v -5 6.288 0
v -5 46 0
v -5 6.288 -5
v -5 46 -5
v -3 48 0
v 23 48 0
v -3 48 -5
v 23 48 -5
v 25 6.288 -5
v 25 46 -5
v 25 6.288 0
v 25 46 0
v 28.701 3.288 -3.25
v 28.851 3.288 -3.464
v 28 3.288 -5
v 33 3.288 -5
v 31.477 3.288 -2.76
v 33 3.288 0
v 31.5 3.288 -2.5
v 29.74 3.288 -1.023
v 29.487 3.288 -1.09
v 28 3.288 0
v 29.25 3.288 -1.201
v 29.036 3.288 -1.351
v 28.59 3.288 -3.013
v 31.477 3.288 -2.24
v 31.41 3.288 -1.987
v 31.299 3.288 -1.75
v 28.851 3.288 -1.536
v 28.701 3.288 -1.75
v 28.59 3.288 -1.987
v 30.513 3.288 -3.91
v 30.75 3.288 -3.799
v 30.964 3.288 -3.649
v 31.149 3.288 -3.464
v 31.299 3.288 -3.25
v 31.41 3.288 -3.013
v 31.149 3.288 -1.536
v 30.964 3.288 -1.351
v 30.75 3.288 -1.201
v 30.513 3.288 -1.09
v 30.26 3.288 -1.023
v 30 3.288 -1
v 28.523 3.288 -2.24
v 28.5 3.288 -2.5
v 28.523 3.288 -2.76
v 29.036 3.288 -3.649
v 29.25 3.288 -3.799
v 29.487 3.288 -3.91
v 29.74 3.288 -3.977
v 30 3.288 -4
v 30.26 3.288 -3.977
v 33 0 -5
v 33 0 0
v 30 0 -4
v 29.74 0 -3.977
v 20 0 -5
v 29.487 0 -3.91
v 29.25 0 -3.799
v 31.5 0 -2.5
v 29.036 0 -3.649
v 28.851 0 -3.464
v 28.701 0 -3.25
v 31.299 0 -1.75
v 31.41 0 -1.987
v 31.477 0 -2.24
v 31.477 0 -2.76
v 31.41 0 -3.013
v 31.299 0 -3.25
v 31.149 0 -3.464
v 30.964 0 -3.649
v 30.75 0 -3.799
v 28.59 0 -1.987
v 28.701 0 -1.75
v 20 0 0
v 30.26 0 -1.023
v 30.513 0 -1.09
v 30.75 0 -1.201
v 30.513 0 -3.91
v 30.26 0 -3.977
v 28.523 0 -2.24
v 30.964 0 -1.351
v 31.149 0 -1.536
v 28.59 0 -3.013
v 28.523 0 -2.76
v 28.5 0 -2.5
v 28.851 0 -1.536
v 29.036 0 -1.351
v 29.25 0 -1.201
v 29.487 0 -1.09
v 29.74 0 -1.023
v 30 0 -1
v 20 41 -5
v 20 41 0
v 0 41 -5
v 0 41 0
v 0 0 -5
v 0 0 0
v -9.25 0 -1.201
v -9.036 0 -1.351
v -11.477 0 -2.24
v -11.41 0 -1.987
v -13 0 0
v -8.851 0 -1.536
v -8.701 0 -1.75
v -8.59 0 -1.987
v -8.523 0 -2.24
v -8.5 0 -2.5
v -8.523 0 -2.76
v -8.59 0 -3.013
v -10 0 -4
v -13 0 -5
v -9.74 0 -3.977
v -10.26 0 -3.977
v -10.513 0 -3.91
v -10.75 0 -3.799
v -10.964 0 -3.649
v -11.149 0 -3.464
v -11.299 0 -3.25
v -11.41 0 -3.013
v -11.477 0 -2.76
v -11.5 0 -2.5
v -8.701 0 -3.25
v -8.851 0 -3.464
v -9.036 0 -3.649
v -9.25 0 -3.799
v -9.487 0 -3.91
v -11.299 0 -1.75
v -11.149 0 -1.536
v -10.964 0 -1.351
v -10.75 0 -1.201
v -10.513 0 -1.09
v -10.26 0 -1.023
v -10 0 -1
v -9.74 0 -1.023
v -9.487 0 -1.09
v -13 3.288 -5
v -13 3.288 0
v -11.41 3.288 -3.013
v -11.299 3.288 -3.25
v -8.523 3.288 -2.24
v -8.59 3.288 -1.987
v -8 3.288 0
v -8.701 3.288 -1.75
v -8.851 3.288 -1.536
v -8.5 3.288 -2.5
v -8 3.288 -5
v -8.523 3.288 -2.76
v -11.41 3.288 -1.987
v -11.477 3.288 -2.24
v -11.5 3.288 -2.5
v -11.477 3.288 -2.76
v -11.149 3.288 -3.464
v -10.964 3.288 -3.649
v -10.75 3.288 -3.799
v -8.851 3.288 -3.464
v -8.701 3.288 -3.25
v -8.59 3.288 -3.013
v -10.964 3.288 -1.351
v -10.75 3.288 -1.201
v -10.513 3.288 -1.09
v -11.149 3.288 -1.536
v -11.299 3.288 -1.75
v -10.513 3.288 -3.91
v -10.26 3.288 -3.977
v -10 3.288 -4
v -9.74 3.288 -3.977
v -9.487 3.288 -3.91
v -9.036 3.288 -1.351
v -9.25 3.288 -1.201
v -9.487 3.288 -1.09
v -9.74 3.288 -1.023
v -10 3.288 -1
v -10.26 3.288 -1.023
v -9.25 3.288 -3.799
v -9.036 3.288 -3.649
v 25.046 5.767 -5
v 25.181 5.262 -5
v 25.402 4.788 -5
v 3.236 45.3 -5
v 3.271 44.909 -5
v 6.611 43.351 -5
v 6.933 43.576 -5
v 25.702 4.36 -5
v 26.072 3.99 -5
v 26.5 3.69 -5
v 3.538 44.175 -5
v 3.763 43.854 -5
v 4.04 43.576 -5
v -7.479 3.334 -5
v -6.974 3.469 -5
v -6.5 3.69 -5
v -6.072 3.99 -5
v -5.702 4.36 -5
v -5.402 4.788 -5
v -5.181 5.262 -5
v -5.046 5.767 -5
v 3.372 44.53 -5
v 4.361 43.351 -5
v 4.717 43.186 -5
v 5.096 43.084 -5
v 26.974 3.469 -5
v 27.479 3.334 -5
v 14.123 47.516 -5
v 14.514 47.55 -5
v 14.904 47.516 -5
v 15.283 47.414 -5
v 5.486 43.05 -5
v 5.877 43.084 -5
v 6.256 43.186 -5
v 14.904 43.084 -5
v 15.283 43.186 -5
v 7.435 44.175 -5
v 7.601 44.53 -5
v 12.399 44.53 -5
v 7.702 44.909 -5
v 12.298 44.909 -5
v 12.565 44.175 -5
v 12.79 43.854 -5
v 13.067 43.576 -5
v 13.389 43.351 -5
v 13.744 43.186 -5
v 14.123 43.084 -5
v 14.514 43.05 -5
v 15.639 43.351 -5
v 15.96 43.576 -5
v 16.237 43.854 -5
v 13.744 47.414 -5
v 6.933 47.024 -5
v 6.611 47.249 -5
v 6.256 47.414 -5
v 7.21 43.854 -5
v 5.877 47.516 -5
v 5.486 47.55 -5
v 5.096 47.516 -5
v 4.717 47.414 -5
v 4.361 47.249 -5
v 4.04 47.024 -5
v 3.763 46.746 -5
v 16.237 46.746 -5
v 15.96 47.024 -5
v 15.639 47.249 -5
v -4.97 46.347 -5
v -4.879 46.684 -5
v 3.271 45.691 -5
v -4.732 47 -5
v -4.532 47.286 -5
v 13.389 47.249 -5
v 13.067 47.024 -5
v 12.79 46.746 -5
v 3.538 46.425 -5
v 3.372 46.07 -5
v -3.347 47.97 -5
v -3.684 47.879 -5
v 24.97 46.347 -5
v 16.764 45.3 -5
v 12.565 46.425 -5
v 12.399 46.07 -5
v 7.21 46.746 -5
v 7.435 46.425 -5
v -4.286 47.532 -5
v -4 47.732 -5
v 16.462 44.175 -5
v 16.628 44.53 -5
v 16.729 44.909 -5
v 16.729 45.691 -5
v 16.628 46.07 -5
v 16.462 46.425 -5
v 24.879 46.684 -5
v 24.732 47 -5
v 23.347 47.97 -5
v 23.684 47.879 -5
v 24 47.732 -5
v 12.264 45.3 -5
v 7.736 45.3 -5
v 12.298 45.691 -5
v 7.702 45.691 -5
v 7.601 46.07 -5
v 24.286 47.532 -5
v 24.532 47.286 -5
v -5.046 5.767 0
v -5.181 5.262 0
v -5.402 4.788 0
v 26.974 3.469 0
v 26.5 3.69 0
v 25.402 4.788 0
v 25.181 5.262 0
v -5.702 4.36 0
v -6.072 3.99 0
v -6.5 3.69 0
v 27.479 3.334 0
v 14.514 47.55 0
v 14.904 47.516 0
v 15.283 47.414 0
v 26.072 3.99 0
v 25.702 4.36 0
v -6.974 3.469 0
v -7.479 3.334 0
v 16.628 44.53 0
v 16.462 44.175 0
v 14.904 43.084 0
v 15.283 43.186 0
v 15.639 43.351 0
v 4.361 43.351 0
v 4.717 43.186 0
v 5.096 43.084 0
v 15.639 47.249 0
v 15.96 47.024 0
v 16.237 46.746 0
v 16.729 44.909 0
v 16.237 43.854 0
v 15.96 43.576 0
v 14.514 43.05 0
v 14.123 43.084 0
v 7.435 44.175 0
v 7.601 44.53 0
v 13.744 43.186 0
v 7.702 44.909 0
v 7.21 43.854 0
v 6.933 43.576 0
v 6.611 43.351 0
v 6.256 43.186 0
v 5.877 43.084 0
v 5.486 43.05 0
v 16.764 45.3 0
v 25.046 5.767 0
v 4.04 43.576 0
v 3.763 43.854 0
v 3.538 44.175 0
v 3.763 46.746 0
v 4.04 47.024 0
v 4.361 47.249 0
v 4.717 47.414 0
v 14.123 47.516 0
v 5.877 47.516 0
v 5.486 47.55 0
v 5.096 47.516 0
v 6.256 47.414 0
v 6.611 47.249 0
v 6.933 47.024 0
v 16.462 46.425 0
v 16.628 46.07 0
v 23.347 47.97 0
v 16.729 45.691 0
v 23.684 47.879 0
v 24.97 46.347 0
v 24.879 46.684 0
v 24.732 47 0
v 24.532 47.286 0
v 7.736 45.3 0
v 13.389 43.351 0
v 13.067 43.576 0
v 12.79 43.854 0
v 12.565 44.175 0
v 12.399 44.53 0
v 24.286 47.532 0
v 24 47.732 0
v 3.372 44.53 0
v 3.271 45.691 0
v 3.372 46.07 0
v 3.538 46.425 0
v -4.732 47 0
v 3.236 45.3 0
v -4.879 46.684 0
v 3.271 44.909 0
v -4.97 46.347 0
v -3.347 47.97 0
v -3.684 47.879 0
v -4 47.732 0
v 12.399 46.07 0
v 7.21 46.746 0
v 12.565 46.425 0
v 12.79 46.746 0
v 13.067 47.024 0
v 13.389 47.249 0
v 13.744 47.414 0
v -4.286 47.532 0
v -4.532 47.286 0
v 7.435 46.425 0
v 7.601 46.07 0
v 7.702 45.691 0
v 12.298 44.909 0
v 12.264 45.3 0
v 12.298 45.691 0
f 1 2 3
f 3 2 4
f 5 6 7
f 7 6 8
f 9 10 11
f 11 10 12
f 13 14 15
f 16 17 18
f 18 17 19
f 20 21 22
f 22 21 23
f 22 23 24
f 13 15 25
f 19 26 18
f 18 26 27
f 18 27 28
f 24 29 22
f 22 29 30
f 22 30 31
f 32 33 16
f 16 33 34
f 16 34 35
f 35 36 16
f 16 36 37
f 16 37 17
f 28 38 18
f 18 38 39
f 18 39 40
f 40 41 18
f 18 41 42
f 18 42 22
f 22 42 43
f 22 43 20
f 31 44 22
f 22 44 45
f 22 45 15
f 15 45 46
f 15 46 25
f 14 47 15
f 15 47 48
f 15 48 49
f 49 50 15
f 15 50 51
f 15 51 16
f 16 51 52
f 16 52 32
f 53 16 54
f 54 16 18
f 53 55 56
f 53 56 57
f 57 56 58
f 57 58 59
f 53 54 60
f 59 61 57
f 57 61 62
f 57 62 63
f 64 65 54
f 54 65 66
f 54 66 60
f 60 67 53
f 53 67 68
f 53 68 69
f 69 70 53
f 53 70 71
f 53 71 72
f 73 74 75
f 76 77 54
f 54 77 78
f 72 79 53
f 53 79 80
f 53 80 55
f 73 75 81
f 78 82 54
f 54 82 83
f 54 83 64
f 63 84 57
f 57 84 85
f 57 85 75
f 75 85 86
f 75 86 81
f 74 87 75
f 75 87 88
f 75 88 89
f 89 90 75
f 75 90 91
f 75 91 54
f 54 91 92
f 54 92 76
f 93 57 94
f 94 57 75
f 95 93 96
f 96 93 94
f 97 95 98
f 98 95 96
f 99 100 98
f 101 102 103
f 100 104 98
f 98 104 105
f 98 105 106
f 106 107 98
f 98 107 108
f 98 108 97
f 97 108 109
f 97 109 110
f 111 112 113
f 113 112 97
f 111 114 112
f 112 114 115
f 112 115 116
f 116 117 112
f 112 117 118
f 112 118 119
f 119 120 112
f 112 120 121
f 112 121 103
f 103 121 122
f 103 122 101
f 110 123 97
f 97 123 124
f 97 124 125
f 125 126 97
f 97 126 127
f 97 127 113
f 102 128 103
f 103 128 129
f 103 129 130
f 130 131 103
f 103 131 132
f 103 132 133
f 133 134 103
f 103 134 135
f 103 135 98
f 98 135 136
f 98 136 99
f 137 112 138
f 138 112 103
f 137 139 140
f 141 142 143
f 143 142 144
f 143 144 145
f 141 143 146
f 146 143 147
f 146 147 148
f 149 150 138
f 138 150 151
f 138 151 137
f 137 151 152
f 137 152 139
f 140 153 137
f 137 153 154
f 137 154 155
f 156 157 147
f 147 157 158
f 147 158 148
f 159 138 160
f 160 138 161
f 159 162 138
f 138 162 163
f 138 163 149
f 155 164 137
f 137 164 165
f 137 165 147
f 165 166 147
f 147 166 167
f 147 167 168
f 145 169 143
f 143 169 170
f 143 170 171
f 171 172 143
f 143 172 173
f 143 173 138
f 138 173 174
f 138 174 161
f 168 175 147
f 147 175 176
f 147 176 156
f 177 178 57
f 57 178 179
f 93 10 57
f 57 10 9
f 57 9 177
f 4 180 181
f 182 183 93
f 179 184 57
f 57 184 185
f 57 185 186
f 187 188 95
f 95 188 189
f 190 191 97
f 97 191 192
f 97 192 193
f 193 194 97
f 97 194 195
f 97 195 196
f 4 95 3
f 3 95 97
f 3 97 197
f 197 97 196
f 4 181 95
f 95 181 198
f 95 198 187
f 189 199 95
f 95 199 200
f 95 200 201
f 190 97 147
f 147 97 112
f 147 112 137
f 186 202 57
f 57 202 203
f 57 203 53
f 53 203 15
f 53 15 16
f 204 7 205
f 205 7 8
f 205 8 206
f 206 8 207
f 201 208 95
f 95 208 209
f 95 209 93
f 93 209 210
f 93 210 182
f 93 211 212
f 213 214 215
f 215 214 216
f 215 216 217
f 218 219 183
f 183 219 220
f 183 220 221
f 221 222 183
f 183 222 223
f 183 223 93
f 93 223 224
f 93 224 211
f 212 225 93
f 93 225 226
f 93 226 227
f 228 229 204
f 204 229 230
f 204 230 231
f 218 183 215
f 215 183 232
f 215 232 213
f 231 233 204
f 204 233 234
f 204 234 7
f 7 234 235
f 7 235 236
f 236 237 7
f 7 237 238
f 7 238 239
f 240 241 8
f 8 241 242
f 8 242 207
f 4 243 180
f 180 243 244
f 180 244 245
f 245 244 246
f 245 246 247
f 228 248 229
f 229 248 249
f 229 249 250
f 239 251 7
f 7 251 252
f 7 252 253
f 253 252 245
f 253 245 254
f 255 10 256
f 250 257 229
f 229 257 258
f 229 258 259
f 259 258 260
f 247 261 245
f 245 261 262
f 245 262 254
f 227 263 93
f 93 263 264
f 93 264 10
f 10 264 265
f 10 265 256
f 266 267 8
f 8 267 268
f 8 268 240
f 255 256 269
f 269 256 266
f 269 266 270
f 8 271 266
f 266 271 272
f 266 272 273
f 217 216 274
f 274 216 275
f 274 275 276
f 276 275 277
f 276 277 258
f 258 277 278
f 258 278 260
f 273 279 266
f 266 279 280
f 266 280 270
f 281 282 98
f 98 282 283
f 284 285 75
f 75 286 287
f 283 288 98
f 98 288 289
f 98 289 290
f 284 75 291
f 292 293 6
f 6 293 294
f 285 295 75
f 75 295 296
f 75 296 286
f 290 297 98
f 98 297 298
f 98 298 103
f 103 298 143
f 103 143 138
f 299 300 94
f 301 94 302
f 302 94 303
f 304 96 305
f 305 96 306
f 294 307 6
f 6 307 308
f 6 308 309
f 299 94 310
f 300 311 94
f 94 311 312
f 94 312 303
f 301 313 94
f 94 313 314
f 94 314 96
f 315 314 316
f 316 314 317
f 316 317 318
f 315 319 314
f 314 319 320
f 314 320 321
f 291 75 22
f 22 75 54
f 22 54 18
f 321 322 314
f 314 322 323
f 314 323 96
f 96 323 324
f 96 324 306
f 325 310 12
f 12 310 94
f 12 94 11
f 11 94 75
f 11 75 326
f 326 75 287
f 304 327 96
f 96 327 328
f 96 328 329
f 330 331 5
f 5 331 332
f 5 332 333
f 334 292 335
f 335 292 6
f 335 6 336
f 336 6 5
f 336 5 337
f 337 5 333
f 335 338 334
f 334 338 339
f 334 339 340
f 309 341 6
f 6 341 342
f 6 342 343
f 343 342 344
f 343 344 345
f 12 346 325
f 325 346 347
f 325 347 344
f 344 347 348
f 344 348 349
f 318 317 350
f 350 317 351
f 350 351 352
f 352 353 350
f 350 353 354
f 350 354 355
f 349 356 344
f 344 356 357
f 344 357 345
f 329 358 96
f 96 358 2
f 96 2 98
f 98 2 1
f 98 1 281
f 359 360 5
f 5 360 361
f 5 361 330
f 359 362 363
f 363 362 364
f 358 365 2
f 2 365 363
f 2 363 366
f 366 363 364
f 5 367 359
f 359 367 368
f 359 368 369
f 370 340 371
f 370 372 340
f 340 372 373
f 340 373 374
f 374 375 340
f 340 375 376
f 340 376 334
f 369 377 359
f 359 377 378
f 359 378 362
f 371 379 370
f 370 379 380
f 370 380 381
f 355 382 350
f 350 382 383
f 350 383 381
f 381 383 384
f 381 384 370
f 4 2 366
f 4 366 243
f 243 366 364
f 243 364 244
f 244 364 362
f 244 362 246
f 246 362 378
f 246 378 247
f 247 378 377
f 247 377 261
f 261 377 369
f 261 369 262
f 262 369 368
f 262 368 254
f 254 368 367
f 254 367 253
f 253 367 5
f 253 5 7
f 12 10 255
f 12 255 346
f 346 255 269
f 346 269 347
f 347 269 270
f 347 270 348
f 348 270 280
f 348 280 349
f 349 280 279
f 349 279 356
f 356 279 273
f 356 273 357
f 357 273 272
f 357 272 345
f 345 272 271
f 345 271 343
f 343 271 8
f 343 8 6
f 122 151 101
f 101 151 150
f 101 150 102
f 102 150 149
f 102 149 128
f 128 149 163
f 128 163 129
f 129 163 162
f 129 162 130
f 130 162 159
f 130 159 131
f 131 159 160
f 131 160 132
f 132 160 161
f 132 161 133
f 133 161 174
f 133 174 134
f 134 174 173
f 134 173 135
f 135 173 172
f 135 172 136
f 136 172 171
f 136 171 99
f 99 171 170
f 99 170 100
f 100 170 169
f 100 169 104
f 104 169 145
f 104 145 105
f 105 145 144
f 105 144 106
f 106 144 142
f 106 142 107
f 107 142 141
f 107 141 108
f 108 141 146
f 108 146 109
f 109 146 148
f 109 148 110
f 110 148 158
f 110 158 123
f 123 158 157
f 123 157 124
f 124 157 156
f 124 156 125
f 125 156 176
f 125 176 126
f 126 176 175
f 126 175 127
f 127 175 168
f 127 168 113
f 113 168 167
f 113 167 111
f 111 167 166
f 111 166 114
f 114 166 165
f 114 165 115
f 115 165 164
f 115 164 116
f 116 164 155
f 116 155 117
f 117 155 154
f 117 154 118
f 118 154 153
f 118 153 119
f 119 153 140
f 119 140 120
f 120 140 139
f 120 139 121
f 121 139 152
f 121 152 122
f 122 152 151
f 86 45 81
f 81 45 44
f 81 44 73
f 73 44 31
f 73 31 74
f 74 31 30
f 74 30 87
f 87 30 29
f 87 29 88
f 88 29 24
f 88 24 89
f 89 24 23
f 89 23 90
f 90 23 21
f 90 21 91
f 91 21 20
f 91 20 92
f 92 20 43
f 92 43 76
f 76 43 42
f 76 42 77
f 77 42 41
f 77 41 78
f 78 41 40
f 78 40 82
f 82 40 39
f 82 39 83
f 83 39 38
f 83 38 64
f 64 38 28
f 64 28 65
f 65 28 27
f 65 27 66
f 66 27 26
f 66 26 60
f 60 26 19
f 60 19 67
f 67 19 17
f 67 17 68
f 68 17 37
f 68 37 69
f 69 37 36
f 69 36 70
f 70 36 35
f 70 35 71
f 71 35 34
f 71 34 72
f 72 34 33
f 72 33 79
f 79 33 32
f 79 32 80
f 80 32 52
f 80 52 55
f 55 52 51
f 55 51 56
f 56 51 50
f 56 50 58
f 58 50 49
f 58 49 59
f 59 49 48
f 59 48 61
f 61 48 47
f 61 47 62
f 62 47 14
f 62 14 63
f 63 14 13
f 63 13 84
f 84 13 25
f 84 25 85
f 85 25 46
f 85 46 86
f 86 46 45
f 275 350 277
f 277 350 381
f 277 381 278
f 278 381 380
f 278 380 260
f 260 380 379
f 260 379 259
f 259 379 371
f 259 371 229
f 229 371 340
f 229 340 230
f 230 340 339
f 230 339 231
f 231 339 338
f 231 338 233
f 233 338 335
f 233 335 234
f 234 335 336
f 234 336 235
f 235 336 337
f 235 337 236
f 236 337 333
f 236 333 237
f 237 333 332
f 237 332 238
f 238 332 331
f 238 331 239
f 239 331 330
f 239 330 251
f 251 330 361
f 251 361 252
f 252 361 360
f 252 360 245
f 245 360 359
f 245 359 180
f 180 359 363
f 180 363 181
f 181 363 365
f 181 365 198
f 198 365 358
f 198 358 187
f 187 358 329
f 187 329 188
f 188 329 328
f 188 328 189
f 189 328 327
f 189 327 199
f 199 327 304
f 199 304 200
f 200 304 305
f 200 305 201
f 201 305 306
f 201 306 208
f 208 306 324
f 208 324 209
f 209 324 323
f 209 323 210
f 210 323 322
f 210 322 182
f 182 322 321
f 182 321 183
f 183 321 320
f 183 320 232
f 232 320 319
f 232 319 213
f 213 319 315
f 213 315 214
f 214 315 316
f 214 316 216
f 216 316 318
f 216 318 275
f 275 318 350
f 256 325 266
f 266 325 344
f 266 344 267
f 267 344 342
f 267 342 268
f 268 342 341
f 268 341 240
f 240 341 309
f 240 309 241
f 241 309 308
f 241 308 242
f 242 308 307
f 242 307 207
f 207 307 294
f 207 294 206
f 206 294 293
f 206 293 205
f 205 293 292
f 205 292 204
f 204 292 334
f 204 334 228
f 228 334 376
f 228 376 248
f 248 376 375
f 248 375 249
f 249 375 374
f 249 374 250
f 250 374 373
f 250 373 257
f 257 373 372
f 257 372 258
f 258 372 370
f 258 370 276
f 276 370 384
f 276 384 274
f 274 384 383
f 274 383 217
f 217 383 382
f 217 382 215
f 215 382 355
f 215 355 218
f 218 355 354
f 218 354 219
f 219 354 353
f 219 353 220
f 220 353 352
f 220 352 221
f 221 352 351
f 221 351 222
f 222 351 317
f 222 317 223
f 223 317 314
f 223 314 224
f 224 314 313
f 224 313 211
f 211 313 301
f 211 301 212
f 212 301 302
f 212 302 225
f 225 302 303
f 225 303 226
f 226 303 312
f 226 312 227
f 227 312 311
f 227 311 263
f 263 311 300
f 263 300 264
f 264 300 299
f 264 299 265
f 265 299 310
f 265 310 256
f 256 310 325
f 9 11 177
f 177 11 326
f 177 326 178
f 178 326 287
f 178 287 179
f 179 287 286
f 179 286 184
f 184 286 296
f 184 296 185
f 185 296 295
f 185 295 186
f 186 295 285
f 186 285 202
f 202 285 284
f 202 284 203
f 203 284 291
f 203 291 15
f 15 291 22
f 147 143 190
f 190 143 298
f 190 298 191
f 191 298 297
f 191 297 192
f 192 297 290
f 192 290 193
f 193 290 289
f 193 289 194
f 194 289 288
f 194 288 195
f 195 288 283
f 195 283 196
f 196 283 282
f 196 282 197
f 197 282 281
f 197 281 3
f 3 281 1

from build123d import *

# Parameters (mm, degrees)
SKETCH1_W               = 5
SKETCH1_H               = 3.288029927
SKETCH1_W_2             = 8
BOSS_EXTRUDE1_DEPTH     = 5
FILLET1_R               = 2
CUT_EXTRUDE1_DEPTH      = 56.795701159
CUT_EXTRUDE1_DEPTH_BACK = 56.795701159
SKETCH2_R               = 1.5
CUT_EXTRUDE2_DEPTH      = 59.463663929
CUT_EXTRUDE2_DEPTH_BACK = 59.463663929
SKETCH3_R               = 2.25
FILLET2_R               = 3


with BuildPart() as part:
    # Sketch1 → Boss-Extrude1 (new body)
    with BuildSketch(Plane.XY):
        Polygon((-5, 3.288029927), (0, 3.288029927), (0, 41), (20, 41), (20, 3.288029927), (25, 3.288029927), (25, 48), (-5, 48), align=None)
        with Locations((-2.5, 1.644014964)):
            Rectangle(SKETCH1_W, SKETCH1_H)
        with Locations((-9, 1.644014964)):
            Rectangle(SKETCH1_W_2, SKETCH1_H)
        with Locations((22.5, 1.644014964)):
            Rectangle(SKETCH1_W, SKETCH1_H)
        with Locations((29, 1.644014964)):
            Rectangle(SKETCH1_W_2, SKETCH1_H)
    extrude(amount=-BOSS_EXTRUDE1_DEPTH)

    # Fillet1
    fillet1_edges = [part.edges().sort_by_distance(p)[0] for p in [
        (-5, 48, -2.5),
        (25, 48, -2.5),
    ]]
    fillet(fillet1_edges, radius=FILLET1_R)

    # Sketch2 → Cut-Extrude1 (cut, two sides: drawn at the far end of the back side and taken through both)
    with BuildSketch(Plane(origin=(0, 3.288029927, 0), x_dir=(1, 0, 0), z_dir=(0, 1, 0)).offset(-CUT_EXTRUDE1_DEPTH_BACK)):
        with Locations(Location((-10, 2.5, 0), (0, 0, 180))):
            Circle(SKETCH2_R)
        with Locations(Location((30, 2.5, 0), (0, 0, 180))):
            Circle(SKETCH2_R)
    extrude(amount=CUT_EXTRUDE1_DEPTH + CUT_EXTRUDE1_DEPTH_BACK, mode=Mode.SUBTRACT)

    # Sketch3 → Cut-Extrude2 (cut, two sides: drawn at the far end of the back side and taken through both)
    with BuildSketch(Plane.XY.offset(-CUT_EXTRUDE2_DEPTH_BACK)):
        with Locations((14.513536336, 45.3)):
            Circle(SKETCH3_R)
        with Locations((5.486463664, 45.3)):
            Circle(SKETCH3_R)
    extrude(amount=CUT_EXTRUDE2_DEPTH + CUT_EXTRUDE2_DEPTH_BACK, mode=Mode.SUBTRACT)

    # Fillet2
    fillet2_edges = [part.edges().sort_by_distance(p)[0] for p in [
        (25, 3.288029927, -2.5),
        (-5, 3.288029927, -2.5),
    ]]
    fillet(fillet2_edges, radius=FILLET2_R)


solid = part.part
